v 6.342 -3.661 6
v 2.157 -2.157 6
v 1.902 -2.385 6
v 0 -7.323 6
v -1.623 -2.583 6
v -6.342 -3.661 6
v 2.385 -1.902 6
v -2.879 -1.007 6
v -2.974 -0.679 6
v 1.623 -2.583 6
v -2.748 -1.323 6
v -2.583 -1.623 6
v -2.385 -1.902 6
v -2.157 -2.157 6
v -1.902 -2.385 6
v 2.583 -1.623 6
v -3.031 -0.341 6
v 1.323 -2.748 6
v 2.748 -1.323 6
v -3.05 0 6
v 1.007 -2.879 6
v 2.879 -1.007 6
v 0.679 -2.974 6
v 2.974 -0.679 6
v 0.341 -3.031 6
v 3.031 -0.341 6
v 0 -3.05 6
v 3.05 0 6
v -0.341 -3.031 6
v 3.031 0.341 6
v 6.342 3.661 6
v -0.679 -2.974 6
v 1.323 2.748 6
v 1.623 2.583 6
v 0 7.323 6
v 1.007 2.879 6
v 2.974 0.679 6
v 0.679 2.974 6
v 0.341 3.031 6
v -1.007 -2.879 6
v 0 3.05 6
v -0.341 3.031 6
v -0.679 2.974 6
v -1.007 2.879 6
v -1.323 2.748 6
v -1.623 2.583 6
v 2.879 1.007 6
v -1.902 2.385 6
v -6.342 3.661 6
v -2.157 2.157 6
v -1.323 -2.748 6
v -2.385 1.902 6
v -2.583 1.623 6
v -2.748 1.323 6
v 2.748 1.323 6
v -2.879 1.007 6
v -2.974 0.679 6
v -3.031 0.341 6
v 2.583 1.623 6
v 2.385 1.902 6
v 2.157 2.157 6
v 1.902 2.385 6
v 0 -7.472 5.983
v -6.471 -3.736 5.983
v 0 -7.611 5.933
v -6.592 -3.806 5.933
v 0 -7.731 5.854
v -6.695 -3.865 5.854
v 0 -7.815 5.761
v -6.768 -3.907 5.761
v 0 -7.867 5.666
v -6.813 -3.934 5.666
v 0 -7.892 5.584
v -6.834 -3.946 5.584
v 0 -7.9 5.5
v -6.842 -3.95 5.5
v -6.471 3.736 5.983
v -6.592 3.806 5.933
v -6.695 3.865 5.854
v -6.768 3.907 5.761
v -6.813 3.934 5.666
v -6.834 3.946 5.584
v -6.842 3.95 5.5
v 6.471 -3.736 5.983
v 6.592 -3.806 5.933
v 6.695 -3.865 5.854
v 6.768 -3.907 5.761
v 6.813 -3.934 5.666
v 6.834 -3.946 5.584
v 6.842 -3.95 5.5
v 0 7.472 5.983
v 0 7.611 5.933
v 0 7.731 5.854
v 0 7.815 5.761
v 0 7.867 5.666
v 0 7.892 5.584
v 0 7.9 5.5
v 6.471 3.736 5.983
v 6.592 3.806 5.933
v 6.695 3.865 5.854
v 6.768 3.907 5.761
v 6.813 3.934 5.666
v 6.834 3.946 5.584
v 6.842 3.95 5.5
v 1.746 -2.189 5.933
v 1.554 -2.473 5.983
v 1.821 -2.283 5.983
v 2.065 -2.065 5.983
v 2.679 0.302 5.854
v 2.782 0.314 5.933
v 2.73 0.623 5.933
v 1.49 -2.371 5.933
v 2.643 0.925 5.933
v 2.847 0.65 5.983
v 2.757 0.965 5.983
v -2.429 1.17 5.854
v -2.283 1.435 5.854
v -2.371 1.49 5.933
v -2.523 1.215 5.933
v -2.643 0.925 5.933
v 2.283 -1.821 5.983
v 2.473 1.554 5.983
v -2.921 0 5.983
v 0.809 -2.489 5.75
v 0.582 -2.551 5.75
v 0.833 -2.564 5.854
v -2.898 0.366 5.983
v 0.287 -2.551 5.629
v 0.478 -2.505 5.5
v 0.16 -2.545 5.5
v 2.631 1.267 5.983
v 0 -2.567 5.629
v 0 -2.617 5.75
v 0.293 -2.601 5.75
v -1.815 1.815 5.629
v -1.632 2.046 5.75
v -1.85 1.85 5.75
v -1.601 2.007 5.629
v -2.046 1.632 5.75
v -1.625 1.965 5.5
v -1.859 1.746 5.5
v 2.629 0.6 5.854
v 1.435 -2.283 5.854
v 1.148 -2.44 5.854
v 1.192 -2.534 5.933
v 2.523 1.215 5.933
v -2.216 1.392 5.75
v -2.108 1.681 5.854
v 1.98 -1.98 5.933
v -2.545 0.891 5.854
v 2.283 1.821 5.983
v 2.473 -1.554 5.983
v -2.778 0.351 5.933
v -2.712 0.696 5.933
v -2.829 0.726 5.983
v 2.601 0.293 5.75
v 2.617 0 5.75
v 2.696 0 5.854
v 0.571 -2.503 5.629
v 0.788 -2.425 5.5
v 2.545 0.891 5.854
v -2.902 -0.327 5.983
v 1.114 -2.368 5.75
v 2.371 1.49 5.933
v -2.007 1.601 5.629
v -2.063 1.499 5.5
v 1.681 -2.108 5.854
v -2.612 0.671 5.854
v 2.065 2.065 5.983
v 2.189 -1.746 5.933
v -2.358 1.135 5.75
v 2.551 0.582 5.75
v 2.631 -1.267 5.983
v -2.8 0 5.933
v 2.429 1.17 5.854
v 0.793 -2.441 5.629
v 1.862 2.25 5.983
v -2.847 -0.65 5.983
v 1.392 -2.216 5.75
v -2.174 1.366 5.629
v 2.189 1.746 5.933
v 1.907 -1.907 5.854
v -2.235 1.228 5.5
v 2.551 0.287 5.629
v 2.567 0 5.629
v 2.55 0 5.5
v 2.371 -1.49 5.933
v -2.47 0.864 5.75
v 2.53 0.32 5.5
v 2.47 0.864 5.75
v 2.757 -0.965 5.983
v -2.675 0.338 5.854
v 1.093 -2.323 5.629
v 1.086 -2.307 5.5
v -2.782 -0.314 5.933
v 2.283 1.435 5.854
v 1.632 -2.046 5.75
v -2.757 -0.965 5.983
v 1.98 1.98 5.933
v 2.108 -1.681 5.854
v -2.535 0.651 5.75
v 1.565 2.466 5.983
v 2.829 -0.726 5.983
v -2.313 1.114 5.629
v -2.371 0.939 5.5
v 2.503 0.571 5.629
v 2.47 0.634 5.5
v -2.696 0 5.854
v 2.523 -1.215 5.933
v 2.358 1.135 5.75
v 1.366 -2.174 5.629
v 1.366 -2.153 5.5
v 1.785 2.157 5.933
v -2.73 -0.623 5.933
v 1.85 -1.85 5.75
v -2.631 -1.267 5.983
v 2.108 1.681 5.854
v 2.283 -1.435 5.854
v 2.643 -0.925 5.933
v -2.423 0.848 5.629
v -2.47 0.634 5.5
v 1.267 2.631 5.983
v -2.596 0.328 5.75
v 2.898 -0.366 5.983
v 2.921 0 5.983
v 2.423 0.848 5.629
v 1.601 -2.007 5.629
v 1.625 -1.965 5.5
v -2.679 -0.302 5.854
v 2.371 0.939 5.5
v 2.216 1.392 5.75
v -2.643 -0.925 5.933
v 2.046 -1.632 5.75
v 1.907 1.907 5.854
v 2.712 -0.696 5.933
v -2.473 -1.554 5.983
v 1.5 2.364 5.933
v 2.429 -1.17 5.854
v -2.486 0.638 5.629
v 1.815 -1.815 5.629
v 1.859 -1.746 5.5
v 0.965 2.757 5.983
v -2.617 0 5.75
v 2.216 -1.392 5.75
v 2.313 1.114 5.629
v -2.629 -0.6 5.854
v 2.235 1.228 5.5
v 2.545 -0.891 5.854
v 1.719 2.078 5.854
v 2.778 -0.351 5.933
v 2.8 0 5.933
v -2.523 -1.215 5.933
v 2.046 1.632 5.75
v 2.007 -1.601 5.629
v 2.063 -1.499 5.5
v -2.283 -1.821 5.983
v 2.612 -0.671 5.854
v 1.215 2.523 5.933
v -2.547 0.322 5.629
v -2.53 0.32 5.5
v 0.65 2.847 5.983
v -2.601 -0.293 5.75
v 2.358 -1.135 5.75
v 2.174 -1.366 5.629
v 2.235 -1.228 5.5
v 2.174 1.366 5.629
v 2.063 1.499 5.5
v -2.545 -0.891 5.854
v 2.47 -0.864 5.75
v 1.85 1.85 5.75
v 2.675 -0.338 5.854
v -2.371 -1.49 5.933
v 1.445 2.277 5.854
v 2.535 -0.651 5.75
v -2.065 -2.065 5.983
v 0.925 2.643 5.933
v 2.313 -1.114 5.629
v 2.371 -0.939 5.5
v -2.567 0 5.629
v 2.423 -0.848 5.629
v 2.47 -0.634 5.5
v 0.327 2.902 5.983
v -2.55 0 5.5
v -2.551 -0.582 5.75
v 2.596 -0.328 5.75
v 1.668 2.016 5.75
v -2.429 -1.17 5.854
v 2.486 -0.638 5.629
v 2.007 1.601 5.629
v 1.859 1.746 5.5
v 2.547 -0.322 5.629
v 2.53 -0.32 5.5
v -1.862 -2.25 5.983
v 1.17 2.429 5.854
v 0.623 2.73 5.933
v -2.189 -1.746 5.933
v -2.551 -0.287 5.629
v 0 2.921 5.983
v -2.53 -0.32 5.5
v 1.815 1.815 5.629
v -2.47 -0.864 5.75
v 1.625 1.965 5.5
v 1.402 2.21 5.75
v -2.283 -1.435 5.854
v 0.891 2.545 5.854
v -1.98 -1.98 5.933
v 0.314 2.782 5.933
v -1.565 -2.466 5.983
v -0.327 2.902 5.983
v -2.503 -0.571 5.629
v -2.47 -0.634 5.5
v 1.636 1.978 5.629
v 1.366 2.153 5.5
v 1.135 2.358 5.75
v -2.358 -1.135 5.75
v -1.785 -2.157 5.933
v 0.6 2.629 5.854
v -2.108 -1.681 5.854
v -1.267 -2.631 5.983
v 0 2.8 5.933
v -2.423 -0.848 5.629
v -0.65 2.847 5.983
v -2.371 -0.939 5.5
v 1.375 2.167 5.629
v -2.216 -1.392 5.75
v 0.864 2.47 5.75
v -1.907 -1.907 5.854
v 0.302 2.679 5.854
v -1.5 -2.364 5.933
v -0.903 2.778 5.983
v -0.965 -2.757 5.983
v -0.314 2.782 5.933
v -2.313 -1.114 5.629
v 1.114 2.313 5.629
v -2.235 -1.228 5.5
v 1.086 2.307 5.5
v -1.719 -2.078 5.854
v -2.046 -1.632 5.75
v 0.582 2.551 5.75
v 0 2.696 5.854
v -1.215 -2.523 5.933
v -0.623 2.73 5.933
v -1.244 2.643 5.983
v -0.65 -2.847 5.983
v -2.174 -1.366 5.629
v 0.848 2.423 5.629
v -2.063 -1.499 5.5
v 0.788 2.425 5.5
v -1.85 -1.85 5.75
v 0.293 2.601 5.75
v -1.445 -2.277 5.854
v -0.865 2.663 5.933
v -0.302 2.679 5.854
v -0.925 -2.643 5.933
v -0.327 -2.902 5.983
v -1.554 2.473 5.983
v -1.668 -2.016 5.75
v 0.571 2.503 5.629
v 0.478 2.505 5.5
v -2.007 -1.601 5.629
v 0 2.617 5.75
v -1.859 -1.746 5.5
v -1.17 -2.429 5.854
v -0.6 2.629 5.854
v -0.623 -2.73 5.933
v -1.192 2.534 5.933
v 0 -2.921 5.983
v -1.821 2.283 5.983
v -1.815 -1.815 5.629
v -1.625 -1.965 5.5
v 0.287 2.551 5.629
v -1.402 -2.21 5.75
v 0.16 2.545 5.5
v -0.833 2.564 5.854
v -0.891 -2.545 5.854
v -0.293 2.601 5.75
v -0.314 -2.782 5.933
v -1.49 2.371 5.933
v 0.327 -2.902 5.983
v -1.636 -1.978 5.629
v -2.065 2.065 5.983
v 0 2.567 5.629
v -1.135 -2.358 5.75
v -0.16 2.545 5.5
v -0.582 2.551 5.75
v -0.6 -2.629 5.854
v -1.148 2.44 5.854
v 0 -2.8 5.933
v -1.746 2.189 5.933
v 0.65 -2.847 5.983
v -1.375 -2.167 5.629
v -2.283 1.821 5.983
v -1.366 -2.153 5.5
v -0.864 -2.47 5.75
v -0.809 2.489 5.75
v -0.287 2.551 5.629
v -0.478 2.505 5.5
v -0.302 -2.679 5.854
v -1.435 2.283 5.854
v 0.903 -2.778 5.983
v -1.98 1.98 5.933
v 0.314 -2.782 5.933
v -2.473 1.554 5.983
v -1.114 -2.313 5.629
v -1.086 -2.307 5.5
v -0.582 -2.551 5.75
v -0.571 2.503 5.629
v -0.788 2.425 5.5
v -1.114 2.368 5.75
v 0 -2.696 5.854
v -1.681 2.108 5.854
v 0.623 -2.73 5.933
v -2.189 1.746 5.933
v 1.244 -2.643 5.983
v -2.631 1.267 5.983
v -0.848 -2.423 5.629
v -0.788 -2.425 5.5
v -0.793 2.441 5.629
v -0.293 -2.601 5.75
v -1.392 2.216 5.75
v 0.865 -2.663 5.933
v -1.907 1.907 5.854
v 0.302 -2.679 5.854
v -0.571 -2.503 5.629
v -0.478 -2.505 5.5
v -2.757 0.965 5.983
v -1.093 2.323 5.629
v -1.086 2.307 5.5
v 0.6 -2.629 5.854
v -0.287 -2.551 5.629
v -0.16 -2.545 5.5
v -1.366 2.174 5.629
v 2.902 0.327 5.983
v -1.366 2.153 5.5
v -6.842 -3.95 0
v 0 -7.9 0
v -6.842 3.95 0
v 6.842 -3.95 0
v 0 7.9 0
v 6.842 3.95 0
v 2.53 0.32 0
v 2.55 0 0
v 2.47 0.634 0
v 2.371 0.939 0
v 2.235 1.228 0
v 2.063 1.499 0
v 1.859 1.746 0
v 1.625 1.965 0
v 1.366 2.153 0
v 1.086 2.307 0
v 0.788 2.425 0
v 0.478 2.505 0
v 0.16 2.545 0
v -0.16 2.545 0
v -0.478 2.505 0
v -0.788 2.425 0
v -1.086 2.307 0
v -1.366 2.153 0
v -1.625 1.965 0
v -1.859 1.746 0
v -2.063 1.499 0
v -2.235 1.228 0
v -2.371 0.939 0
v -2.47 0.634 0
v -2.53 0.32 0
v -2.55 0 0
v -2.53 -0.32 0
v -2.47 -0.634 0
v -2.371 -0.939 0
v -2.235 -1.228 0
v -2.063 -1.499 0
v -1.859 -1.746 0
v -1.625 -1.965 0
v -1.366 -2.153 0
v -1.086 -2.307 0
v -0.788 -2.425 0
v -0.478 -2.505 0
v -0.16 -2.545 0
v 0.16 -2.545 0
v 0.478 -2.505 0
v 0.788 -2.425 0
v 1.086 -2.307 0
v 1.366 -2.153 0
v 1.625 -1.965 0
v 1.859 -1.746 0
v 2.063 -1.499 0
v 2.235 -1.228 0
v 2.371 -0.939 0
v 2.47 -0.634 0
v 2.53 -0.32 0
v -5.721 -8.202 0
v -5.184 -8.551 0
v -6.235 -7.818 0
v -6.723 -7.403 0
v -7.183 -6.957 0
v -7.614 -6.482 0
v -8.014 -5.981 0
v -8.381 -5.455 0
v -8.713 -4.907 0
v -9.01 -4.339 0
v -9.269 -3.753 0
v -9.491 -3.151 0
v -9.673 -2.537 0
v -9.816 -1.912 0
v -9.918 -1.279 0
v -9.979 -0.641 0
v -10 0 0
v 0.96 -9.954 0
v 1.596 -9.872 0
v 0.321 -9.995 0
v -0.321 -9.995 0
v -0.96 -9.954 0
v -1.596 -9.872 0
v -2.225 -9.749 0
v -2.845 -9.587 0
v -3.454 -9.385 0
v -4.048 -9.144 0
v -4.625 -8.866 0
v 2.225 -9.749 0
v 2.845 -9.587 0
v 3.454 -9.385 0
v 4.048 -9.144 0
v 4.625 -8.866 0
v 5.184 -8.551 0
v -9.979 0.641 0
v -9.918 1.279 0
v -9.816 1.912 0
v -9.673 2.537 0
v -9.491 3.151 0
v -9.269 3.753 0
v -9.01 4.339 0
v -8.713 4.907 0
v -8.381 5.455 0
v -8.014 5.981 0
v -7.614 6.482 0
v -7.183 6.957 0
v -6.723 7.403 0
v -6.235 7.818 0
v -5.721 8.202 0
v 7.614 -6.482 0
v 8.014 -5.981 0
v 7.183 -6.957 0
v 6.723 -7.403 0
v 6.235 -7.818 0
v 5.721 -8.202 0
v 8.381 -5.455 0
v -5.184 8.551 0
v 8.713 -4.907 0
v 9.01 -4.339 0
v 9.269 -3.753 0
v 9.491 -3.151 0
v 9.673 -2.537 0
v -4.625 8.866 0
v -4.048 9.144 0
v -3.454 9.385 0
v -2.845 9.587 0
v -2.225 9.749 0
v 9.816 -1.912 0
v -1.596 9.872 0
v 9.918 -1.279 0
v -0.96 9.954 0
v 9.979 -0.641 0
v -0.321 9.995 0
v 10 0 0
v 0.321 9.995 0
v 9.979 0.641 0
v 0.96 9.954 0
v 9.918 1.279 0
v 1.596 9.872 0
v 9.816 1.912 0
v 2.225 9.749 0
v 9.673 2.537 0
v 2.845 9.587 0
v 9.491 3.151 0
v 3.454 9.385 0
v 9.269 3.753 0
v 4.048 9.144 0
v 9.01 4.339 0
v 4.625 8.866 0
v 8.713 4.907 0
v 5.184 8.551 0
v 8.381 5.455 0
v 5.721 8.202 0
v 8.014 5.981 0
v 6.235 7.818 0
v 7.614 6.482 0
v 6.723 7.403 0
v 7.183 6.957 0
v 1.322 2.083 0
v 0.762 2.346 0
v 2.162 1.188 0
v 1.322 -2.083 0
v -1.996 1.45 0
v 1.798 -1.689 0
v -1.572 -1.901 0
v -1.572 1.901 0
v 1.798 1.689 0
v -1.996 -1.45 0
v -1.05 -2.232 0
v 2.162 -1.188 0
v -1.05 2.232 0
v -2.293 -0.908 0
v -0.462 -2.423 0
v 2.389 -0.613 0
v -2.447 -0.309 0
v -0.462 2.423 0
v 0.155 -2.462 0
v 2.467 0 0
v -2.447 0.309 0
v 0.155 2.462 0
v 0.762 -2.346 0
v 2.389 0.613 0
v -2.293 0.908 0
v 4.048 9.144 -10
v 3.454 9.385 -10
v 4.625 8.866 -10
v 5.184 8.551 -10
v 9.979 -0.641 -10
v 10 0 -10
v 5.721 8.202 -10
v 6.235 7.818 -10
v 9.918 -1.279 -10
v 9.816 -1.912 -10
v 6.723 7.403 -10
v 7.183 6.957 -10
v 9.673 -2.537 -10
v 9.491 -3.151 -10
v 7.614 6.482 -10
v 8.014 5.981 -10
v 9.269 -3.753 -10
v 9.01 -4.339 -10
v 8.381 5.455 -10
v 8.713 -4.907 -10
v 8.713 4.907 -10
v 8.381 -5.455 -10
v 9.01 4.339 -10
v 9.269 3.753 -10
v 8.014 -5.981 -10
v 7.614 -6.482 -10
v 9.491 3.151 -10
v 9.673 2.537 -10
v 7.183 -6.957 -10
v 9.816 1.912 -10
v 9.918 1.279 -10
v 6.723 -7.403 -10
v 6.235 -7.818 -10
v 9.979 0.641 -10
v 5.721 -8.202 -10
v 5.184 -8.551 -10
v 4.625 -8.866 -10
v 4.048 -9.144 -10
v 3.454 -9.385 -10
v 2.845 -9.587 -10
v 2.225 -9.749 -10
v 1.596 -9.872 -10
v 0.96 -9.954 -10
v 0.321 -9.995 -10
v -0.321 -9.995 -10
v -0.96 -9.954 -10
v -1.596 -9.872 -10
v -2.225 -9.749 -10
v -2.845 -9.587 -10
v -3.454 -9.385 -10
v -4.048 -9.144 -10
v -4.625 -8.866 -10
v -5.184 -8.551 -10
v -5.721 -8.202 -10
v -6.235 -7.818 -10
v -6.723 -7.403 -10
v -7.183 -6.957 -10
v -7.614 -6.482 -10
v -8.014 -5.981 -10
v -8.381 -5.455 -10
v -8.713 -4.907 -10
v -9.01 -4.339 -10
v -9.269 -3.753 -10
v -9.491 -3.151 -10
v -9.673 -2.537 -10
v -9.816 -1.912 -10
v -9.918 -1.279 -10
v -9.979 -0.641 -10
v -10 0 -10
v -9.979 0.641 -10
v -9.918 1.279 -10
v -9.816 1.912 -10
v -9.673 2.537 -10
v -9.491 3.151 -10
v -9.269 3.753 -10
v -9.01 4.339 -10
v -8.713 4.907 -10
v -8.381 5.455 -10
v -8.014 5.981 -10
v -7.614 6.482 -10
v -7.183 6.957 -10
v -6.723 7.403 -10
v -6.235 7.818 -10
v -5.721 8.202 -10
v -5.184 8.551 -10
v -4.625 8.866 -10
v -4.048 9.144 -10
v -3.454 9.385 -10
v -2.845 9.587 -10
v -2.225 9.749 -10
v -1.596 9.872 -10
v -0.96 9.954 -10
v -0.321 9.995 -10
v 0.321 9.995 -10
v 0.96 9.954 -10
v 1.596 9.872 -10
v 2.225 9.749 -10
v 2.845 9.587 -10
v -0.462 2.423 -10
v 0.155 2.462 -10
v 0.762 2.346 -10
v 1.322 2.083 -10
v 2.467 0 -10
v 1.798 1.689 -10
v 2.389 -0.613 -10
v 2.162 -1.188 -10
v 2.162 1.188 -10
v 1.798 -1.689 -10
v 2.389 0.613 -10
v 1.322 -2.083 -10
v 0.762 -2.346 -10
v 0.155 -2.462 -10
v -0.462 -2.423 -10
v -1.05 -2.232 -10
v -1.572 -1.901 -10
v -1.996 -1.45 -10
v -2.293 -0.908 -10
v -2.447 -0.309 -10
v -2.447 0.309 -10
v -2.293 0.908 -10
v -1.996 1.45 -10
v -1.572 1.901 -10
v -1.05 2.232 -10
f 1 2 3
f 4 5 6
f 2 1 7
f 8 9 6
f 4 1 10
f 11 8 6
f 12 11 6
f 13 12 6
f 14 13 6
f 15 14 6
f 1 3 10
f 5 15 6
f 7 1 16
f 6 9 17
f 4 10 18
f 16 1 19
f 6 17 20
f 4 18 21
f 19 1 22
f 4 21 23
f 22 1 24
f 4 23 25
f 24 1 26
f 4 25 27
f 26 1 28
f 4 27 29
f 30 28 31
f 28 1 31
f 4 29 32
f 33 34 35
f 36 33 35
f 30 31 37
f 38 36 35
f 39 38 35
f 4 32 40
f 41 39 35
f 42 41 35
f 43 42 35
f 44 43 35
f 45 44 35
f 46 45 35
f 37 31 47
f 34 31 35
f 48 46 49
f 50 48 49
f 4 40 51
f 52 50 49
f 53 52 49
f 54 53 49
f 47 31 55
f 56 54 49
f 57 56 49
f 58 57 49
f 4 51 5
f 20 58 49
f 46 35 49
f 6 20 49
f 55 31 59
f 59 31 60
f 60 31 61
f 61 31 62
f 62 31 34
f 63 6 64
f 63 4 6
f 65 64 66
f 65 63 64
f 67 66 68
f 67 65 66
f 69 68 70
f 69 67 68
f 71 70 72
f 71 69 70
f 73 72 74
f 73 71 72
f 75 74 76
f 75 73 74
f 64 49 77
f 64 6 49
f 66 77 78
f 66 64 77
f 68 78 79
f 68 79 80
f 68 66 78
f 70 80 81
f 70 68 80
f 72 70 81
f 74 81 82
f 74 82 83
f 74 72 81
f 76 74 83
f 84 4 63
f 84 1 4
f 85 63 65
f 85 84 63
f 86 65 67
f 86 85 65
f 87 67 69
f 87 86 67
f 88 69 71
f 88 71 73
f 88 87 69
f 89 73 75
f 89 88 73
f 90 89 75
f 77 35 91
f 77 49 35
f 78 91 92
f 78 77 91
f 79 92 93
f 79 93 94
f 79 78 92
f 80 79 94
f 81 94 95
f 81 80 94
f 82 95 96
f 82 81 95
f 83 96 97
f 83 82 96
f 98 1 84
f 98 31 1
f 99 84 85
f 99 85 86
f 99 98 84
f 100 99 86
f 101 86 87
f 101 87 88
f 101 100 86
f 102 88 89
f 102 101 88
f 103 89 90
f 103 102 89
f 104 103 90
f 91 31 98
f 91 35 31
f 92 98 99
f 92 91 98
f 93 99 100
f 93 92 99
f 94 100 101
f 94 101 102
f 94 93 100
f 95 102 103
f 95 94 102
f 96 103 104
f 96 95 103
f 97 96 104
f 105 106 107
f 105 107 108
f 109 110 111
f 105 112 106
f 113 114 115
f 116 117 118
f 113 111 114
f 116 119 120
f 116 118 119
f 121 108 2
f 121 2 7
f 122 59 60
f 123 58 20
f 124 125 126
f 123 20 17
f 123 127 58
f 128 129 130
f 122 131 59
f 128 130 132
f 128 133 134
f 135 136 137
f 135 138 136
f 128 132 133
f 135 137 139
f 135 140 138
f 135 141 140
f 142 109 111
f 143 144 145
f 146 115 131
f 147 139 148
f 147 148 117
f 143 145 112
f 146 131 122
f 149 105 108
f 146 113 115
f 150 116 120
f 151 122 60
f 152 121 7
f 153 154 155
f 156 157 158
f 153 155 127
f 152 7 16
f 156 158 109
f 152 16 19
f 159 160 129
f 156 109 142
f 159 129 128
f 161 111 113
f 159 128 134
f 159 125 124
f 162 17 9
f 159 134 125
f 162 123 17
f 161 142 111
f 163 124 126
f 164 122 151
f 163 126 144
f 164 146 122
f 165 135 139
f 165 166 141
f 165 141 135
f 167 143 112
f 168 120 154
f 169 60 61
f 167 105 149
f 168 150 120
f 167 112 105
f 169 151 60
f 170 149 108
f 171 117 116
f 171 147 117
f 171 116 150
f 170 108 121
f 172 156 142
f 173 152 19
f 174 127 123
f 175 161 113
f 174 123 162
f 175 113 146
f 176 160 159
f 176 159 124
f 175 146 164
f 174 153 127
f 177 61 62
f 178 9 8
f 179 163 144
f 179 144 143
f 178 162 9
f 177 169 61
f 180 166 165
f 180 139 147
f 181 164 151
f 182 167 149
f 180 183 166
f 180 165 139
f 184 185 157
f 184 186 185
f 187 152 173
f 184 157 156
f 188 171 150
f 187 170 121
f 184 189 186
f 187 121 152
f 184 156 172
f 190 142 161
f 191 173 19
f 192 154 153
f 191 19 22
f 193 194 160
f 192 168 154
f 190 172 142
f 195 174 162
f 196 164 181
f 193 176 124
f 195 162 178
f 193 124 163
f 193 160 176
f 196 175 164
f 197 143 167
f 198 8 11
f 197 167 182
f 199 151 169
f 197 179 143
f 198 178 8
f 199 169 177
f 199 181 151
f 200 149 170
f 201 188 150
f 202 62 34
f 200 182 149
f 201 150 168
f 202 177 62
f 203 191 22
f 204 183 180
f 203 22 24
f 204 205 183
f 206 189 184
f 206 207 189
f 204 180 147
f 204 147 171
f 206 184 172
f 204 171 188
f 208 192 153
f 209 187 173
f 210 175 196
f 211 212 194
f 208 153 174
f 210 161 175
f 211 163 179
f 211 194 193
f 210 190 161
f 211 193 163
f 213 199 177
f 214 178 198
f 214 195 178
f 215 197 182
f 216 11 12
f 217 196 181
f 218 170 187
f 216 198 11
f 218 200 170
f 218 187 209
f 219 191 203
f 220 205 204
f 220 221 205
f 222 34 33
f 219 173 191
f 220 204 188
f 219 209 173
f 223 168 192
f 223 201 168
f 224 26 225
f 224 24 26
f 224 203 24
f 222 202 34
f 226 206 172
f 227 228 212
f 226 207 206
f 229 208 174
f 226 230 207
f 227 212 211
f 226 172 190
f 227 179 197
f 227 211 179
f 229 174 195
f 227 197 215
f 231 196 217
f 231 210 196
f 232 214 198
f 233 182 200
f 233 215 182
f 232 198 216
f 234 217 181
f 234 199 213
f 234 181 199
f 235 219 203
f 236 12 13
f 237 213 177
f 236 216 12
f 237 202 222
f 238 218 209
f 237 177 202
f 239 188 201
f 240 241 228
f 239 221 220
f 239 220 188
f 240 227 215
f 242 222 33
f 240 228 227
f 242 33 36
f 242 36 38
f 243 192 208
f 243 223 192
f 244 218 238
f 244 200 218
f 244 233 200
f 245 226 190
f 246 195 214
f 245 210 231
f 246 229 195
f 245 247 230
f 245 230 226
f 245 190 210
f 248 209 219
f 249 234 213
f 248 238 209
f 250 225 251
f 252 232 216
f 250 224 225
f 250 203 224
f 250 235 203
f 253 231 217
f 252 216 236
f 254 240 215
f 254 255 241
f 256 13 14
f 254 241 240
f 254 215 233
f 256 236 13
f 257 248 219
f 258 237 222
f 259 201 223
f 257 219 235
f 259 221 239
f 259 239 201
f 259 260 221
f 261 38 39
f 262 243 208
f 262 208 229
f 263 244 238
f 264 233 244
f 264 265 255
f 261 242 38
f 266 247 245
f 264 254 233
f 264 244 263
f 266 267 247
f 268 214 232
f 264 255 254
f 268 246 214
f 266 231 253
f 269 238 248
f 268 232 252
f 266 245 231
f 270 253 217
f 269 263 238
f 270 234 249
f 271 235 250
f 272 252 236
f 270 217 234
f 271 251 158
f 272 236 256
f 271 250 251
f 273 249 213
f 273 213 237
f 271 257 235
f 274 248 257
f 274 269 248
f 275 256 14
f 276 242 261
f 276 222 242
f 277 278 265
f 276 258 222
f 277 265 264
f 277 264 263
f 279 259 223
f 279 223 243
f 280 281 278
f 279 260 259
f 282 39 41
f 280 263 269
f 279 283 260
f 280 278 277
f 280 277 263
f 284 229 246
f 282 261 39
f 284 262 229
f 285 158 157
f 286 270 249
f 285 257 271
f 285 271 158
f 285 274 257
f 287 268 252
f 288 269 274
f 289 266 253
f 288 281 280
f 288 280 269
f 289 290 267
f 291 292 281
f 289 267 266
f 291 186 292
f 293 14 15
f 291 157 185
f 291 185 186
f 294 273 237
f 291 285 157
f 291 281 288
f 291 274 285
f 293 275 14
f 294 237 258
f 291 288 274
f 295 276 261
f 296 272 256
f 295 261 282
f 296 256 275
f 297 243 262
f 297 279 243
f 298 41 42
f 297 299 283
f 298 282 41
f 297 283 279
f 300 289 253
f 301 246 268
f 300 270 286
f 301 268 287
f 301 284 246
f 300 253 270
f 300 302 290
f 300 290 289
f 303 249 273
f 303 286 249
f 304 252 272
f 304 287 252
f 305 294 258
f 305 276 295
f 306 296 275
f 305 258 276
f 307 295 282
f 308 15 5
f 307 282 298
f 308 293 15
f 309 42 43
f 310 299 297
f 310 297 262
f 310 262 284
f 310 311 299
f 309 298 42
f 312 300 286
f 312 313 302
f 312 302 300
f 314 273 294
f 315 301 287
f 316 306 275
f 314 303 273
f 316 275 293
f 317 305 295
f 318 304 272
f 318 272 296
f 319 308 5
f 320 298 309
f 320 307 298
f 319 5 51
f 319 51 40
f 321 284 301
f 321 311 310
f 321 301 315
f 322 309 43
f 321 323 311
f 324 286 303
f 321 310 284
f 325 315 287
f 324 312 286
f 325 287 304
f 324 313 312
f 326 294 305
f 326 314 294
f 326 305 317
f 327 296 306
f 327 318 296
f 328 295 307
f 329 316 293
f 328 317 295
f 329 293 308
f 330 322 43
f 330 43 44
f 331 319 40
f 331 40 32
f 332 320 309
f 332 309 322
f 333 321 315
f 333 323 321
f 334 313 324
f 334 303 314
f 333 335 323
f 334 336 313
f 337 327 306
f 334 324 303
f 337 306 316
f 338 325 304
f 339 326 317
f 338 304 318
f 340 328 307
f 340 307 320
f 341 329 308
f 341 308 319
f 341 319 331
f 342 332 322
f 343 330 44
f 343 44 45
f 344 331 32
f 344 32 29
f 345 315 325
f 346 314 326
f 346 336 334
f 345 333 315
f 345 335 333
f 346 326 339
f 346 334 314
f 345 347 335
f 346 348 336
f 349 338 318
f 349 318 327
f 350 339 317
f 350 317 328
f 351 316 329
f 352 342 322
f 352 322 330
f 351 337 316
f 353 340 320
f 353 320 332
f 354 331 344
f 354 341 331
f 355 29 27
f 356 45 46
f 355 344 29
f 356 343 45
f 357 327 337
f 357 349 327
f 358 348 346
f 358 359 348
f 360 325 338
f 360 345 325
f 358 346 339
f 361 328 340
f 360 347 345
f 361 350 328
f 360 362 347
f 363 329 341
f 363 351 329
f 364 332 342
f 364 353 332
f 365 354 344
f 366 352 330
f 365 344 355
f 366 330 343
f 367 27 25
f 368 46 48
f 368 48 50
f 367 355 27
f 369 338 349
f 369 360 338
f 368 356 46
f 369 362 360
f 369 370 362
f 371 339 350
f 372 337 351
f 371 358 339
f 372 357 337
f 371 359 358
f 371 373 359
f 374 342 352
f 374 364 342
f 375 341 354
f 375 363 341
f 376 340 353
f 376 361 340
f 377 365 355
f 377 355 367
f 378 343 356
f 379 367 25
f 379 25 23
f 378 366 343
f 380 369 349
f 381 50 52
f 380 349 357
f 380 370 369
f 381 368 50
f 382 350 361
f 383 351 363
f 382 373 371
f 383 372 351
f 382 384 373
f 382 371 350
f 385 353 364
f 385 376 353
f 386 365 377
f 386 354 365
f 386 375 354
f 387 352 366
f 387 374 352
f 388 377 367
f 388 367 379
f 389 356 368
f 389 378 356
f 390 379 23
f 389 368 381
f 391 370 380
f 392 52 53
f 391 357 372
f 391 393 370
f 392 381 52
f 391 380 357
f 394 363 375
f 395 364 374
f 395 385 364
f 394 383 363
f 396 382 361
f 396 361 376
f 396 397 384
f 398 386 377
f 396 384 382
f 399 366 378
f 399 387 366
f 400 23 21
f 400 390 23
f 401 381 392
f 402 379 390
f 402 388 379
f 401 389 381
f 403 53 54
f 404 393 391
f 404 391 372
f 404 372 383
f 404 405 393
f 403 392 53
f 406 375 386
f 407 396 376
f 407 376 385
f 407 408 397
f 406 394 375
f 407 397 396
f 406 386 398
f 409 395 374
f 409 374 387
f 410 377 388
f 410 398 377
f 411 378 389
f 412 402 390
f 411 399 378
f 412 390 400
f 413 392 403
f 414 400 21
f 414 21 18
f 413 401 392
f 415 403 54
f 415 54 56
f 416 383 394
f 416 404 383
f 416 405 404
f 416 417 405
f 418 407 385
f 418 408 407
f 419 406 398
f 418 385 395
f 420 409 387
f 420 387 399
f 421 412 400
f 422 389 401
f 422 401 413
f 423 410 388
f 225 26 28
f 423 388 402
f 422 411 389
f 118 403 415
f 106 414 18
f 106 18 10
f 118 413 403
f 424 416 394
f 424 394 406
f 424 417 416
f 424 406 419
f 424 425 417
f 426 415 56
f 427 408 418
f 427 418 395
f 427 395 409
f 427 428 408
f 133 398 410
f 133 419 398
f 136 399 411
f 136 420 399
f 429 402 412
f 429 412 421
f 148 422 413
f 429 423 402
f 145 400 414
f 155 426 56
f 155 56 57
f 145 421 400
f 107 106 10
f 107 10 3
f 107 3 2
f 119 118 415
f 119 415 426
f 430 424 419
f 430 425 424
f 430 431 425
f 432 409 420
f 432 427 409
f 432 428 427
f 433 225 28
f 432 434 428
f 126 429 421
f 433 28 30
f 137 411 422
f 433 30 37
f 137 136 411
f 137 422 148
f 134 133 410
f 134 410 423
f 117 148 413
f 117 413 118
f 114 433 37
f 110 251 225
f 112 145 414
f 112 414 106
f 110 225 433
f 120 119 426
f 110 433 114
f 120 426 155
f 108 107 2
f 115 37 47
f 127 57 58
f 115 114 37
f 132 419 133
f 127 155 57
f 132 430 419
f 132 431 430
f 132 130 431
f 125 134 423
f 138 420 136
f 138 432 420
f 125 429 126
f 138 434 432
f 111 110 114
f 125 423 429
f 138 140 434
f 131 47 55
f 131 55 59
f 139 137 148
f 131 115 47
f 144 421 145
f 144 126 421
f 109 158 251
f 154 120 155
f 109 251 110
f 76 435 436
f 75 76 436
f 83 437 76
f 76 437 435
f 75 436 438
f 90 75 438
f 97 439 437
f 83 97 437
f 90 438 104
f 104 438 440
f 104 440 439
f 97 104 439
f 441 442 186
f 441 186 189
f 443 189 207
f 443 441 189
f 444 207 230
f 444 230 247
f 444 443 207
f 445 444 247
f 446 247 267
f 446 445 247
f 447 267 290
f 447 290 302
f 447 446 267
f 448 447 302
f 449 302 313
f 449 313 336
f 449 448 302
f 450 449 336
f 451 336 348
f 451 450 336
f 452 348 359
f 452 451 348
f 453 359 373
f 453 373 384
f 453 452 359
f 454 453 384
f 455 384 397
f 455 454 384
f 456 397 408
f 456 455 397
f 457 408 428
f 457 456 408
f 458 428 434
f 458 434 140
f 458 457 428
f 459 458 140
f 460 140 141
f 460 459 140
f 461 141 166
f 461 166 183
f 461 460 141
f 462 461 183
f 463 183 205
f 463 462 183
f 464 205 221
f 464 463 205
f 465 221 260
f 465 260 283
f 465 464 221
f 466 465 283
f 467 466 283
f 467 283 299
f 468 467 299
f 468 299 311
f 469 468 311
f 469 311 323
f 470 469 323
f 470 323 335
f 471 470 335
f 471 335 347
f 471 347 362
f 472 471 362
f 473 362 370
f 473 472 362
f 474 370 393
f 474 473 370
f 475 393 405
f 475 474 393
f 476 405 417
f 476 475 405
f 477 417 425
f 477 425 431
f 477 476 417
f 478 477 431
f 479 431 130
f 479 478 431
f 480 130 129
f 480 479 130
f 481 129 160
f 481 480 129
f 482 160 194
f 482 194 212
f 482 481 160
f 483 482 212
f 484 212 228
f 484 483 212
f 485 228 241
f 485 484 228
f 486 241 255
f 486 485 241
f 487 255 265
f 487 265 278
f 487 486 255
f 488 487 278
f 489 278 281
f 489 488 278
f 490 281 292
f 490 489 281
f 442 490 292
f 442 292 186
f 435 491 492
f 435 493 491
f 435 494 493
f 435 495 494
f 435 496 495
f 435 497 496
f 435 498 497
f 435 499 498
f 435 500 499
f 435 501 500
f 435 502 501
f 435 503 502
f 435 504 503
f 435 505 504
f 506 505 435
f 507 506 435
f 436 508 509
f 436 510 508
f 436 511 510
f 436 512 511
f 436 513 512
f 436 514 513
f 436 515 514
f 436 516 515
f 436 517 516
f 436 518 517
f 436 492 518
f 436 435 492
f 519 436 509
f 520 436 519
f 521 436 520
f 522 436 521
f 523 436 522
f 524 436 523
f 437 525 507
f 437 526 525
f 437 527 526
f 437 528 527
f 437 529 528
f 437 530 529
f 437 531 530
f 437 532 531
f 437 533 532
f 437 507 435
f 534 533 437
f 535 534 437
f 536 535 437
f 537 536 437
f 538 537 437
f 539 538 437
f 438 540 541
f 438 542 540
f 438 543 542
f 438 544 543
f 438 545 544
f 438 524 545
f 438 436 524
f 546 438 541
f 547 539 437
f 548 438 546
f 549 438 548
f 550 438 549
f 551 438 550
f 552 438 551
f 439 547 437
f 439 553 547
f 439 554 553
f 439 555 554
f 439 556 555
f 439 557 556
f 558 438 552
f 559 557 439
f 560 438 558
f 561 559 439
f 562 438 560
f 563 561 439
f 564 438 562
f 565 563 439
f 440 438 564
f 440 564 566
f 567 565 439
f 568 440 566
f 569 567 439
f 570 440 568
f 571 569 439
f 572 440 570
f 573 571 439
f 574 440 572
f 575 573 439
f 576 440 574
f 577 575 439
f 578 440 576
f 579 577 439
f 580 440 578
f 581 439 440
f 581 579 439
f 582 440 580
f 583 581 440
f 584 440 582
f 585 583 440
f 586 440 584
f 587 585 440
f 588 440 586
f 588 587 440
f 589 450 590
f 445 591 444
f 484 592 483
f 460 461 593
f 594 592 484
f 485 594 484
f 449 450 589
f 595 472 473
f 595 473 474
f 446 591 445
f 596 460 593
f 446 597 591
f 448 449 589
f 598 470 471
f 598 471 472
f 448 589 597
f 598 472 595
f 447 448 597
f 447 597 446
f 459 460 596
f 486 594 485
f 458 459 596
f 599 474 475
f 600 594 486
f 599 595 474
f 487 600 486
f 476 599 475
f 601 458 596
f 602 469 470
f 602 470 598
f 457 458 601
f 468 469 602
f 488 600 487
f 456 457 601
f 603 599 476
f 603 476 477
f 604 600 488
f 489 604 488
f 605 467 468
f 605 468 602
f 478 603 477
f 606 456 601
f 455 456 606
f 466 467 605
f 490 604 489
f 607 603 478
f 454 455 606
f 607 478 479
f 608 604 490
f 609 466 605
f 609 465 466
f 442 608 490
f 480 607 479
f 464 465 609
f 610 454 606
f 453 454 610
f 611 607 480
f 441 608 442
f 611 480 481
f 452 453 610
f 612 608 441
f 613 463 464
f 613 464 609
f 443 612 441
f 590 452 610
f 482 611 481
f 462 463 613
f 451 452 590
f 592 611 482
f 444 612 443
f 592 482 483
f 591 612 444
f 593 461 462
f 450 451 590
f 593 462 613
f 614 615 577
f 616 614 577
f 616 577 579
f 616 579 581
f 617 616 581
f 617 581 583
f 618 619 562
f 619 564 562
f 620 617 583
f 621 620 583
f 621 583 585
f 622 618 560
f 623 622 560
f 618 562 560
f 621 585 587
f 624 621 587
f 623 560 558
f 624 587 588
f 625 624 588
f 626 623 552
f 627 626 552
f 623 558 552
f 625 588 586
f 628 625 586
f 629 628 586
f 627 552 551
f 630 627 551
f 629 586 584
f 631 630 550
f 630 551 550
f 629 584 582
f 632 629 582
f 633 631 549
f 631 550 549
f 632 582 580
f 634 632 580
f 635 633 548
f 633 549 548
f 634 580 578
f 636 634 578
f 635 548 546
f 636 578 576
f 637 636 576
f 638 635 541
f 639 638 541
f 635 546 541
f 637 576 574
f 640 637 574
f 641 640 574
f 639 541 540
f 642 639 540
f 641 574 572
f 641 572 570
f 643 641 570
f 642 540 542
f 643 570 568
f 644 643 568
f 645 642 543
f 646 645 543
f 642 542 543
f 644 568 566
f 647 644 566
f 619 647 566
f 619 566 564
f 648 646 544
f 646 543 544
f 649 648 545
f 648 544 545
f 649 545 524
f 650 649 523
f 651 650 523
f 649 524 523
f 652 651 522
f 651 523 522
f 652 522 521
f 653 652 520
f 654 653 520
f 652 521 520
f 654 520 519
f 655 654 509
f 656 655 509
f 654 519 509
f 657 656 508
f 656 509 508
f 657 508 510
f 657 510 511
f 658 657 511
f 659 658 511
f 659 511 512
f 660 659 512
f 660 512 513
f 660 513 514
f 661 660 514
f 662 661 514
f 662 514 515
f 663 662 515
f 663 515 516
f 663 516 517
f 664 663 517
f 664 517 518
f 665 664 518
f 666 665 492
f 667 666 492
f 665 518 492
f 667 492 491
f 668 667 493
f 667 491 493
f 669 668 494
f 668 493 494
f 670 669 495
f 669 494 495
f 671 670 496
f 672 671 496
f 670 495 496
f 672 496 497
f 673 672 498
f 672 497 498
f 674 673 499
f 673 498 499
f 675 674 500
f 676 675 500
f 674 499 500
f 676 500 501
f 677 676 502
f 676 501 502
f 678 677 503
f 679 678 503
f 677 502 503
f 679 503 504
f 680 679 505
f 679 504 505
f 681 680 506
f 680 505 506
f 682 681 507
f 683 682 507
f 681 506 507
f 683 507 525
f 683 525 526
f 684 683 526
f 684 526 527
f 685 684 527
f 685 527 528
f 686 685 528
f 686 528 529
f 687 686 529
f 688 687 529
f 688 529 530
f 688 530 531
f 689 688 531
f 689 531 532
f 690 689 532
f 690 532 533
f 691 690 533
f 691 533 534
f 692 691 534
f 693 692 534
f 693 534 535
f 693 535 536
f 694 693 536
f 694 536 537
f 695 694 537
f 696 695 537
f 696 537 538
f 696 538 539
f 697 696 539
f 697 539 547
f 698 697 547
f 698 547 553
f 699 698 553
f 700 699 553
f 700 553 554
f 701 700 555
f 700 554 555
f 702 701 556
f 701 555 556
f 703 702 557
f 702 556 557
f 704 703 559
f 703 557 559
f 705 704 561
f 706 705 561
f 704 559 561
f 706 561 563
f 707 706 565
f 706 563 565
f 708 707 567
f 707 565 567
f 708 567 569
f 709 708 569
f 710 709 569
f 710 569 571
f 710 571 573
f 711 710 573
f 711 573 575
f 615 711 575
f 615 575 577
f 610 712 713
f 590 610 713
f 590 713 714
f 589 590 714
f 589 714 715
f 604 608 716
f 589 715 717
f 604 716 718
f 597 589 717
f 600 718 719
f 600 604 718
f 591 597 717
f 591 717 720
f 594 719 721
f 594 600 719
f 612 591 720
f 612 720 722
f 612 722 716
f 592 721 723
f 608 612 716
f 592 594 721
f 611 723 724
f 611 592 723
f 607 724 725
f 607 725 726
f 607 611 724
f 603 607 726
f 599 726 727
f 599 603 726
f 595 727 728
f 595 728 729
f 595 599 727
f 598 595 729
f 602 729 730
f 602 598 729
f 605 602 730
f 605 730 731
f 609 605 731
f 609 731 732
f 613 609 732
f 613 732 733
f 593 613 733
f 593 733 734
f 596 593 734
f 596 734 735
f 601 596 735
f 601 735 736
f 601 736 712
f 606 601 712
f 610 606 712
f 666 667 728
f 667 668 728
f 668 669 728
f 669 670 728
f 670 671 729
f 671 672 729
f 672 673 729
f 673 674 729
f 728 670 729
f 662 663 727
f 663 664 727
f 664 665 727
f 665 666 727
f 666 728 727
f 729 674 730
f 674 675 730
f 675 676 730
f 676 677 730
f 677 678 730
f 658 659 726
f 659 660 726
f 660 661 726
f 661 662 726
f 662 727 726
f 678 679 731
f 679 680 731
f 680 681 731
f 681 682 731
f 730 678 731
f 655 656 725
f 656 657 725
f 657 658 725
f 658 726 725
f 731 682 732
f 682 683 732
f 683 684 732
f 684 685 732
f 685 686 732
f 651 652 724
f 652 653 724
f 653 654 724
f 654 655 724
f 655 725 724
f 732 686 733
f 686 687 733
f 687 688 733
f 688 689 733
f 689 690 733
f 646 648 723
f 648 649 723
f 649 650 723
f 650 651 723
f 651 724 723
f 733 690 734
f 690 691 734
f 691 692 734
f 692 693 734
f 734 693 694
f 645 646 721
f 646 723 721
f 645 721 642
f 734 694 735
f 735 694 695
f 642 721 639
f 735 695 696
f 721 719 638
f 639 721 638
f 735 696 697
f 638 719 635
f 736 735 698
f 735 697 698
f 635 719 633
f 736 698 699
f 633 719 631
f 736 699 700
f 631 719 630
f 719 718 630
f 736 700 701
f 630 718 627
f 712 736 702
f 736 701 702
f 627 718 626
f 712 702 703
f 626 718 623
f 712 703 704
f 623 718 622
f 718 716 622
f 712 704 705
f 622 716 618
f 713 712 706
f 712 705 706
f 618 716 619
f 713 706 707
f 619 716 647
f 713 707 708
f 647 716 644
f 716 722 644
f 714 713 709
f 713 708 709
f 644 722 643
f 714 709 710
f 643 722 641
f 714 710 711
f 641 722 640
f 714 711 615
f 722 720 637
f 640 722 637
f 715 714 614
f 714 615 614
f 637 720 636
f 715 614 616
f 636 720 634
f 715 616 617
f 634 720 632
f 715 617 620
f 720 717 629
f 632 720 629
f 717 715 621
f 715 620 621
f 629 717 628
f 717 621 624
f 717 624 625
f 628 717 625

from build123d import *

# Parameters (mm, degrees)
SKETCH_R      = 2.55
PAD_DEPTH     = 6
SKETCH001_R   = 10
SKETCH001_R_2 = 2.466699
PAD001_DEPTH  = 10
FILLET_R      = 0.5


with BuildPart() as part:
    # Sketch → Pad (new body)
    with BuildSketch(Plane.XY):
        Polygon((-6.841601, -3.95), (0, -7.9), (6.841601, -3.95), (6.841601, 3.95), (0, 7.9), (-6.841601, 3.95), align=None)
        Circle(SKETCH_R, mode=Mode.SUBTRACT)
    extrude(amount=PAD_DEPTH)

    # Sketch001 → Pad001 (new body)
    with BuildSketch(Plane(origin=(0, 0, 0), x_dir=(1, 0, 0), z_dir=(0, 0, -1))):
        Circle(SKETCH001_R)
        Circle(SKETCH001_R_2, mode=Mode.SUBTRACT)
    extrude(amount=PAD001_DEPTH)

    # Fillet
    fillet_edges = [part.edges().sort_by_distance(p)[0] for p in [
        (-3.4208, -5.925, 6),
        (3.4208, -5.925, 6),
        (6.841601, 0, 6),
        (3.4208, 5.925, 6),
        (-3.4208, 5.925, 6),
        (-6.841601, 0, 6),
        (-2.55, 0, 6),
    ]]
    fillet(fillet_edges, radius=FILLET_R)


solid = part.part
